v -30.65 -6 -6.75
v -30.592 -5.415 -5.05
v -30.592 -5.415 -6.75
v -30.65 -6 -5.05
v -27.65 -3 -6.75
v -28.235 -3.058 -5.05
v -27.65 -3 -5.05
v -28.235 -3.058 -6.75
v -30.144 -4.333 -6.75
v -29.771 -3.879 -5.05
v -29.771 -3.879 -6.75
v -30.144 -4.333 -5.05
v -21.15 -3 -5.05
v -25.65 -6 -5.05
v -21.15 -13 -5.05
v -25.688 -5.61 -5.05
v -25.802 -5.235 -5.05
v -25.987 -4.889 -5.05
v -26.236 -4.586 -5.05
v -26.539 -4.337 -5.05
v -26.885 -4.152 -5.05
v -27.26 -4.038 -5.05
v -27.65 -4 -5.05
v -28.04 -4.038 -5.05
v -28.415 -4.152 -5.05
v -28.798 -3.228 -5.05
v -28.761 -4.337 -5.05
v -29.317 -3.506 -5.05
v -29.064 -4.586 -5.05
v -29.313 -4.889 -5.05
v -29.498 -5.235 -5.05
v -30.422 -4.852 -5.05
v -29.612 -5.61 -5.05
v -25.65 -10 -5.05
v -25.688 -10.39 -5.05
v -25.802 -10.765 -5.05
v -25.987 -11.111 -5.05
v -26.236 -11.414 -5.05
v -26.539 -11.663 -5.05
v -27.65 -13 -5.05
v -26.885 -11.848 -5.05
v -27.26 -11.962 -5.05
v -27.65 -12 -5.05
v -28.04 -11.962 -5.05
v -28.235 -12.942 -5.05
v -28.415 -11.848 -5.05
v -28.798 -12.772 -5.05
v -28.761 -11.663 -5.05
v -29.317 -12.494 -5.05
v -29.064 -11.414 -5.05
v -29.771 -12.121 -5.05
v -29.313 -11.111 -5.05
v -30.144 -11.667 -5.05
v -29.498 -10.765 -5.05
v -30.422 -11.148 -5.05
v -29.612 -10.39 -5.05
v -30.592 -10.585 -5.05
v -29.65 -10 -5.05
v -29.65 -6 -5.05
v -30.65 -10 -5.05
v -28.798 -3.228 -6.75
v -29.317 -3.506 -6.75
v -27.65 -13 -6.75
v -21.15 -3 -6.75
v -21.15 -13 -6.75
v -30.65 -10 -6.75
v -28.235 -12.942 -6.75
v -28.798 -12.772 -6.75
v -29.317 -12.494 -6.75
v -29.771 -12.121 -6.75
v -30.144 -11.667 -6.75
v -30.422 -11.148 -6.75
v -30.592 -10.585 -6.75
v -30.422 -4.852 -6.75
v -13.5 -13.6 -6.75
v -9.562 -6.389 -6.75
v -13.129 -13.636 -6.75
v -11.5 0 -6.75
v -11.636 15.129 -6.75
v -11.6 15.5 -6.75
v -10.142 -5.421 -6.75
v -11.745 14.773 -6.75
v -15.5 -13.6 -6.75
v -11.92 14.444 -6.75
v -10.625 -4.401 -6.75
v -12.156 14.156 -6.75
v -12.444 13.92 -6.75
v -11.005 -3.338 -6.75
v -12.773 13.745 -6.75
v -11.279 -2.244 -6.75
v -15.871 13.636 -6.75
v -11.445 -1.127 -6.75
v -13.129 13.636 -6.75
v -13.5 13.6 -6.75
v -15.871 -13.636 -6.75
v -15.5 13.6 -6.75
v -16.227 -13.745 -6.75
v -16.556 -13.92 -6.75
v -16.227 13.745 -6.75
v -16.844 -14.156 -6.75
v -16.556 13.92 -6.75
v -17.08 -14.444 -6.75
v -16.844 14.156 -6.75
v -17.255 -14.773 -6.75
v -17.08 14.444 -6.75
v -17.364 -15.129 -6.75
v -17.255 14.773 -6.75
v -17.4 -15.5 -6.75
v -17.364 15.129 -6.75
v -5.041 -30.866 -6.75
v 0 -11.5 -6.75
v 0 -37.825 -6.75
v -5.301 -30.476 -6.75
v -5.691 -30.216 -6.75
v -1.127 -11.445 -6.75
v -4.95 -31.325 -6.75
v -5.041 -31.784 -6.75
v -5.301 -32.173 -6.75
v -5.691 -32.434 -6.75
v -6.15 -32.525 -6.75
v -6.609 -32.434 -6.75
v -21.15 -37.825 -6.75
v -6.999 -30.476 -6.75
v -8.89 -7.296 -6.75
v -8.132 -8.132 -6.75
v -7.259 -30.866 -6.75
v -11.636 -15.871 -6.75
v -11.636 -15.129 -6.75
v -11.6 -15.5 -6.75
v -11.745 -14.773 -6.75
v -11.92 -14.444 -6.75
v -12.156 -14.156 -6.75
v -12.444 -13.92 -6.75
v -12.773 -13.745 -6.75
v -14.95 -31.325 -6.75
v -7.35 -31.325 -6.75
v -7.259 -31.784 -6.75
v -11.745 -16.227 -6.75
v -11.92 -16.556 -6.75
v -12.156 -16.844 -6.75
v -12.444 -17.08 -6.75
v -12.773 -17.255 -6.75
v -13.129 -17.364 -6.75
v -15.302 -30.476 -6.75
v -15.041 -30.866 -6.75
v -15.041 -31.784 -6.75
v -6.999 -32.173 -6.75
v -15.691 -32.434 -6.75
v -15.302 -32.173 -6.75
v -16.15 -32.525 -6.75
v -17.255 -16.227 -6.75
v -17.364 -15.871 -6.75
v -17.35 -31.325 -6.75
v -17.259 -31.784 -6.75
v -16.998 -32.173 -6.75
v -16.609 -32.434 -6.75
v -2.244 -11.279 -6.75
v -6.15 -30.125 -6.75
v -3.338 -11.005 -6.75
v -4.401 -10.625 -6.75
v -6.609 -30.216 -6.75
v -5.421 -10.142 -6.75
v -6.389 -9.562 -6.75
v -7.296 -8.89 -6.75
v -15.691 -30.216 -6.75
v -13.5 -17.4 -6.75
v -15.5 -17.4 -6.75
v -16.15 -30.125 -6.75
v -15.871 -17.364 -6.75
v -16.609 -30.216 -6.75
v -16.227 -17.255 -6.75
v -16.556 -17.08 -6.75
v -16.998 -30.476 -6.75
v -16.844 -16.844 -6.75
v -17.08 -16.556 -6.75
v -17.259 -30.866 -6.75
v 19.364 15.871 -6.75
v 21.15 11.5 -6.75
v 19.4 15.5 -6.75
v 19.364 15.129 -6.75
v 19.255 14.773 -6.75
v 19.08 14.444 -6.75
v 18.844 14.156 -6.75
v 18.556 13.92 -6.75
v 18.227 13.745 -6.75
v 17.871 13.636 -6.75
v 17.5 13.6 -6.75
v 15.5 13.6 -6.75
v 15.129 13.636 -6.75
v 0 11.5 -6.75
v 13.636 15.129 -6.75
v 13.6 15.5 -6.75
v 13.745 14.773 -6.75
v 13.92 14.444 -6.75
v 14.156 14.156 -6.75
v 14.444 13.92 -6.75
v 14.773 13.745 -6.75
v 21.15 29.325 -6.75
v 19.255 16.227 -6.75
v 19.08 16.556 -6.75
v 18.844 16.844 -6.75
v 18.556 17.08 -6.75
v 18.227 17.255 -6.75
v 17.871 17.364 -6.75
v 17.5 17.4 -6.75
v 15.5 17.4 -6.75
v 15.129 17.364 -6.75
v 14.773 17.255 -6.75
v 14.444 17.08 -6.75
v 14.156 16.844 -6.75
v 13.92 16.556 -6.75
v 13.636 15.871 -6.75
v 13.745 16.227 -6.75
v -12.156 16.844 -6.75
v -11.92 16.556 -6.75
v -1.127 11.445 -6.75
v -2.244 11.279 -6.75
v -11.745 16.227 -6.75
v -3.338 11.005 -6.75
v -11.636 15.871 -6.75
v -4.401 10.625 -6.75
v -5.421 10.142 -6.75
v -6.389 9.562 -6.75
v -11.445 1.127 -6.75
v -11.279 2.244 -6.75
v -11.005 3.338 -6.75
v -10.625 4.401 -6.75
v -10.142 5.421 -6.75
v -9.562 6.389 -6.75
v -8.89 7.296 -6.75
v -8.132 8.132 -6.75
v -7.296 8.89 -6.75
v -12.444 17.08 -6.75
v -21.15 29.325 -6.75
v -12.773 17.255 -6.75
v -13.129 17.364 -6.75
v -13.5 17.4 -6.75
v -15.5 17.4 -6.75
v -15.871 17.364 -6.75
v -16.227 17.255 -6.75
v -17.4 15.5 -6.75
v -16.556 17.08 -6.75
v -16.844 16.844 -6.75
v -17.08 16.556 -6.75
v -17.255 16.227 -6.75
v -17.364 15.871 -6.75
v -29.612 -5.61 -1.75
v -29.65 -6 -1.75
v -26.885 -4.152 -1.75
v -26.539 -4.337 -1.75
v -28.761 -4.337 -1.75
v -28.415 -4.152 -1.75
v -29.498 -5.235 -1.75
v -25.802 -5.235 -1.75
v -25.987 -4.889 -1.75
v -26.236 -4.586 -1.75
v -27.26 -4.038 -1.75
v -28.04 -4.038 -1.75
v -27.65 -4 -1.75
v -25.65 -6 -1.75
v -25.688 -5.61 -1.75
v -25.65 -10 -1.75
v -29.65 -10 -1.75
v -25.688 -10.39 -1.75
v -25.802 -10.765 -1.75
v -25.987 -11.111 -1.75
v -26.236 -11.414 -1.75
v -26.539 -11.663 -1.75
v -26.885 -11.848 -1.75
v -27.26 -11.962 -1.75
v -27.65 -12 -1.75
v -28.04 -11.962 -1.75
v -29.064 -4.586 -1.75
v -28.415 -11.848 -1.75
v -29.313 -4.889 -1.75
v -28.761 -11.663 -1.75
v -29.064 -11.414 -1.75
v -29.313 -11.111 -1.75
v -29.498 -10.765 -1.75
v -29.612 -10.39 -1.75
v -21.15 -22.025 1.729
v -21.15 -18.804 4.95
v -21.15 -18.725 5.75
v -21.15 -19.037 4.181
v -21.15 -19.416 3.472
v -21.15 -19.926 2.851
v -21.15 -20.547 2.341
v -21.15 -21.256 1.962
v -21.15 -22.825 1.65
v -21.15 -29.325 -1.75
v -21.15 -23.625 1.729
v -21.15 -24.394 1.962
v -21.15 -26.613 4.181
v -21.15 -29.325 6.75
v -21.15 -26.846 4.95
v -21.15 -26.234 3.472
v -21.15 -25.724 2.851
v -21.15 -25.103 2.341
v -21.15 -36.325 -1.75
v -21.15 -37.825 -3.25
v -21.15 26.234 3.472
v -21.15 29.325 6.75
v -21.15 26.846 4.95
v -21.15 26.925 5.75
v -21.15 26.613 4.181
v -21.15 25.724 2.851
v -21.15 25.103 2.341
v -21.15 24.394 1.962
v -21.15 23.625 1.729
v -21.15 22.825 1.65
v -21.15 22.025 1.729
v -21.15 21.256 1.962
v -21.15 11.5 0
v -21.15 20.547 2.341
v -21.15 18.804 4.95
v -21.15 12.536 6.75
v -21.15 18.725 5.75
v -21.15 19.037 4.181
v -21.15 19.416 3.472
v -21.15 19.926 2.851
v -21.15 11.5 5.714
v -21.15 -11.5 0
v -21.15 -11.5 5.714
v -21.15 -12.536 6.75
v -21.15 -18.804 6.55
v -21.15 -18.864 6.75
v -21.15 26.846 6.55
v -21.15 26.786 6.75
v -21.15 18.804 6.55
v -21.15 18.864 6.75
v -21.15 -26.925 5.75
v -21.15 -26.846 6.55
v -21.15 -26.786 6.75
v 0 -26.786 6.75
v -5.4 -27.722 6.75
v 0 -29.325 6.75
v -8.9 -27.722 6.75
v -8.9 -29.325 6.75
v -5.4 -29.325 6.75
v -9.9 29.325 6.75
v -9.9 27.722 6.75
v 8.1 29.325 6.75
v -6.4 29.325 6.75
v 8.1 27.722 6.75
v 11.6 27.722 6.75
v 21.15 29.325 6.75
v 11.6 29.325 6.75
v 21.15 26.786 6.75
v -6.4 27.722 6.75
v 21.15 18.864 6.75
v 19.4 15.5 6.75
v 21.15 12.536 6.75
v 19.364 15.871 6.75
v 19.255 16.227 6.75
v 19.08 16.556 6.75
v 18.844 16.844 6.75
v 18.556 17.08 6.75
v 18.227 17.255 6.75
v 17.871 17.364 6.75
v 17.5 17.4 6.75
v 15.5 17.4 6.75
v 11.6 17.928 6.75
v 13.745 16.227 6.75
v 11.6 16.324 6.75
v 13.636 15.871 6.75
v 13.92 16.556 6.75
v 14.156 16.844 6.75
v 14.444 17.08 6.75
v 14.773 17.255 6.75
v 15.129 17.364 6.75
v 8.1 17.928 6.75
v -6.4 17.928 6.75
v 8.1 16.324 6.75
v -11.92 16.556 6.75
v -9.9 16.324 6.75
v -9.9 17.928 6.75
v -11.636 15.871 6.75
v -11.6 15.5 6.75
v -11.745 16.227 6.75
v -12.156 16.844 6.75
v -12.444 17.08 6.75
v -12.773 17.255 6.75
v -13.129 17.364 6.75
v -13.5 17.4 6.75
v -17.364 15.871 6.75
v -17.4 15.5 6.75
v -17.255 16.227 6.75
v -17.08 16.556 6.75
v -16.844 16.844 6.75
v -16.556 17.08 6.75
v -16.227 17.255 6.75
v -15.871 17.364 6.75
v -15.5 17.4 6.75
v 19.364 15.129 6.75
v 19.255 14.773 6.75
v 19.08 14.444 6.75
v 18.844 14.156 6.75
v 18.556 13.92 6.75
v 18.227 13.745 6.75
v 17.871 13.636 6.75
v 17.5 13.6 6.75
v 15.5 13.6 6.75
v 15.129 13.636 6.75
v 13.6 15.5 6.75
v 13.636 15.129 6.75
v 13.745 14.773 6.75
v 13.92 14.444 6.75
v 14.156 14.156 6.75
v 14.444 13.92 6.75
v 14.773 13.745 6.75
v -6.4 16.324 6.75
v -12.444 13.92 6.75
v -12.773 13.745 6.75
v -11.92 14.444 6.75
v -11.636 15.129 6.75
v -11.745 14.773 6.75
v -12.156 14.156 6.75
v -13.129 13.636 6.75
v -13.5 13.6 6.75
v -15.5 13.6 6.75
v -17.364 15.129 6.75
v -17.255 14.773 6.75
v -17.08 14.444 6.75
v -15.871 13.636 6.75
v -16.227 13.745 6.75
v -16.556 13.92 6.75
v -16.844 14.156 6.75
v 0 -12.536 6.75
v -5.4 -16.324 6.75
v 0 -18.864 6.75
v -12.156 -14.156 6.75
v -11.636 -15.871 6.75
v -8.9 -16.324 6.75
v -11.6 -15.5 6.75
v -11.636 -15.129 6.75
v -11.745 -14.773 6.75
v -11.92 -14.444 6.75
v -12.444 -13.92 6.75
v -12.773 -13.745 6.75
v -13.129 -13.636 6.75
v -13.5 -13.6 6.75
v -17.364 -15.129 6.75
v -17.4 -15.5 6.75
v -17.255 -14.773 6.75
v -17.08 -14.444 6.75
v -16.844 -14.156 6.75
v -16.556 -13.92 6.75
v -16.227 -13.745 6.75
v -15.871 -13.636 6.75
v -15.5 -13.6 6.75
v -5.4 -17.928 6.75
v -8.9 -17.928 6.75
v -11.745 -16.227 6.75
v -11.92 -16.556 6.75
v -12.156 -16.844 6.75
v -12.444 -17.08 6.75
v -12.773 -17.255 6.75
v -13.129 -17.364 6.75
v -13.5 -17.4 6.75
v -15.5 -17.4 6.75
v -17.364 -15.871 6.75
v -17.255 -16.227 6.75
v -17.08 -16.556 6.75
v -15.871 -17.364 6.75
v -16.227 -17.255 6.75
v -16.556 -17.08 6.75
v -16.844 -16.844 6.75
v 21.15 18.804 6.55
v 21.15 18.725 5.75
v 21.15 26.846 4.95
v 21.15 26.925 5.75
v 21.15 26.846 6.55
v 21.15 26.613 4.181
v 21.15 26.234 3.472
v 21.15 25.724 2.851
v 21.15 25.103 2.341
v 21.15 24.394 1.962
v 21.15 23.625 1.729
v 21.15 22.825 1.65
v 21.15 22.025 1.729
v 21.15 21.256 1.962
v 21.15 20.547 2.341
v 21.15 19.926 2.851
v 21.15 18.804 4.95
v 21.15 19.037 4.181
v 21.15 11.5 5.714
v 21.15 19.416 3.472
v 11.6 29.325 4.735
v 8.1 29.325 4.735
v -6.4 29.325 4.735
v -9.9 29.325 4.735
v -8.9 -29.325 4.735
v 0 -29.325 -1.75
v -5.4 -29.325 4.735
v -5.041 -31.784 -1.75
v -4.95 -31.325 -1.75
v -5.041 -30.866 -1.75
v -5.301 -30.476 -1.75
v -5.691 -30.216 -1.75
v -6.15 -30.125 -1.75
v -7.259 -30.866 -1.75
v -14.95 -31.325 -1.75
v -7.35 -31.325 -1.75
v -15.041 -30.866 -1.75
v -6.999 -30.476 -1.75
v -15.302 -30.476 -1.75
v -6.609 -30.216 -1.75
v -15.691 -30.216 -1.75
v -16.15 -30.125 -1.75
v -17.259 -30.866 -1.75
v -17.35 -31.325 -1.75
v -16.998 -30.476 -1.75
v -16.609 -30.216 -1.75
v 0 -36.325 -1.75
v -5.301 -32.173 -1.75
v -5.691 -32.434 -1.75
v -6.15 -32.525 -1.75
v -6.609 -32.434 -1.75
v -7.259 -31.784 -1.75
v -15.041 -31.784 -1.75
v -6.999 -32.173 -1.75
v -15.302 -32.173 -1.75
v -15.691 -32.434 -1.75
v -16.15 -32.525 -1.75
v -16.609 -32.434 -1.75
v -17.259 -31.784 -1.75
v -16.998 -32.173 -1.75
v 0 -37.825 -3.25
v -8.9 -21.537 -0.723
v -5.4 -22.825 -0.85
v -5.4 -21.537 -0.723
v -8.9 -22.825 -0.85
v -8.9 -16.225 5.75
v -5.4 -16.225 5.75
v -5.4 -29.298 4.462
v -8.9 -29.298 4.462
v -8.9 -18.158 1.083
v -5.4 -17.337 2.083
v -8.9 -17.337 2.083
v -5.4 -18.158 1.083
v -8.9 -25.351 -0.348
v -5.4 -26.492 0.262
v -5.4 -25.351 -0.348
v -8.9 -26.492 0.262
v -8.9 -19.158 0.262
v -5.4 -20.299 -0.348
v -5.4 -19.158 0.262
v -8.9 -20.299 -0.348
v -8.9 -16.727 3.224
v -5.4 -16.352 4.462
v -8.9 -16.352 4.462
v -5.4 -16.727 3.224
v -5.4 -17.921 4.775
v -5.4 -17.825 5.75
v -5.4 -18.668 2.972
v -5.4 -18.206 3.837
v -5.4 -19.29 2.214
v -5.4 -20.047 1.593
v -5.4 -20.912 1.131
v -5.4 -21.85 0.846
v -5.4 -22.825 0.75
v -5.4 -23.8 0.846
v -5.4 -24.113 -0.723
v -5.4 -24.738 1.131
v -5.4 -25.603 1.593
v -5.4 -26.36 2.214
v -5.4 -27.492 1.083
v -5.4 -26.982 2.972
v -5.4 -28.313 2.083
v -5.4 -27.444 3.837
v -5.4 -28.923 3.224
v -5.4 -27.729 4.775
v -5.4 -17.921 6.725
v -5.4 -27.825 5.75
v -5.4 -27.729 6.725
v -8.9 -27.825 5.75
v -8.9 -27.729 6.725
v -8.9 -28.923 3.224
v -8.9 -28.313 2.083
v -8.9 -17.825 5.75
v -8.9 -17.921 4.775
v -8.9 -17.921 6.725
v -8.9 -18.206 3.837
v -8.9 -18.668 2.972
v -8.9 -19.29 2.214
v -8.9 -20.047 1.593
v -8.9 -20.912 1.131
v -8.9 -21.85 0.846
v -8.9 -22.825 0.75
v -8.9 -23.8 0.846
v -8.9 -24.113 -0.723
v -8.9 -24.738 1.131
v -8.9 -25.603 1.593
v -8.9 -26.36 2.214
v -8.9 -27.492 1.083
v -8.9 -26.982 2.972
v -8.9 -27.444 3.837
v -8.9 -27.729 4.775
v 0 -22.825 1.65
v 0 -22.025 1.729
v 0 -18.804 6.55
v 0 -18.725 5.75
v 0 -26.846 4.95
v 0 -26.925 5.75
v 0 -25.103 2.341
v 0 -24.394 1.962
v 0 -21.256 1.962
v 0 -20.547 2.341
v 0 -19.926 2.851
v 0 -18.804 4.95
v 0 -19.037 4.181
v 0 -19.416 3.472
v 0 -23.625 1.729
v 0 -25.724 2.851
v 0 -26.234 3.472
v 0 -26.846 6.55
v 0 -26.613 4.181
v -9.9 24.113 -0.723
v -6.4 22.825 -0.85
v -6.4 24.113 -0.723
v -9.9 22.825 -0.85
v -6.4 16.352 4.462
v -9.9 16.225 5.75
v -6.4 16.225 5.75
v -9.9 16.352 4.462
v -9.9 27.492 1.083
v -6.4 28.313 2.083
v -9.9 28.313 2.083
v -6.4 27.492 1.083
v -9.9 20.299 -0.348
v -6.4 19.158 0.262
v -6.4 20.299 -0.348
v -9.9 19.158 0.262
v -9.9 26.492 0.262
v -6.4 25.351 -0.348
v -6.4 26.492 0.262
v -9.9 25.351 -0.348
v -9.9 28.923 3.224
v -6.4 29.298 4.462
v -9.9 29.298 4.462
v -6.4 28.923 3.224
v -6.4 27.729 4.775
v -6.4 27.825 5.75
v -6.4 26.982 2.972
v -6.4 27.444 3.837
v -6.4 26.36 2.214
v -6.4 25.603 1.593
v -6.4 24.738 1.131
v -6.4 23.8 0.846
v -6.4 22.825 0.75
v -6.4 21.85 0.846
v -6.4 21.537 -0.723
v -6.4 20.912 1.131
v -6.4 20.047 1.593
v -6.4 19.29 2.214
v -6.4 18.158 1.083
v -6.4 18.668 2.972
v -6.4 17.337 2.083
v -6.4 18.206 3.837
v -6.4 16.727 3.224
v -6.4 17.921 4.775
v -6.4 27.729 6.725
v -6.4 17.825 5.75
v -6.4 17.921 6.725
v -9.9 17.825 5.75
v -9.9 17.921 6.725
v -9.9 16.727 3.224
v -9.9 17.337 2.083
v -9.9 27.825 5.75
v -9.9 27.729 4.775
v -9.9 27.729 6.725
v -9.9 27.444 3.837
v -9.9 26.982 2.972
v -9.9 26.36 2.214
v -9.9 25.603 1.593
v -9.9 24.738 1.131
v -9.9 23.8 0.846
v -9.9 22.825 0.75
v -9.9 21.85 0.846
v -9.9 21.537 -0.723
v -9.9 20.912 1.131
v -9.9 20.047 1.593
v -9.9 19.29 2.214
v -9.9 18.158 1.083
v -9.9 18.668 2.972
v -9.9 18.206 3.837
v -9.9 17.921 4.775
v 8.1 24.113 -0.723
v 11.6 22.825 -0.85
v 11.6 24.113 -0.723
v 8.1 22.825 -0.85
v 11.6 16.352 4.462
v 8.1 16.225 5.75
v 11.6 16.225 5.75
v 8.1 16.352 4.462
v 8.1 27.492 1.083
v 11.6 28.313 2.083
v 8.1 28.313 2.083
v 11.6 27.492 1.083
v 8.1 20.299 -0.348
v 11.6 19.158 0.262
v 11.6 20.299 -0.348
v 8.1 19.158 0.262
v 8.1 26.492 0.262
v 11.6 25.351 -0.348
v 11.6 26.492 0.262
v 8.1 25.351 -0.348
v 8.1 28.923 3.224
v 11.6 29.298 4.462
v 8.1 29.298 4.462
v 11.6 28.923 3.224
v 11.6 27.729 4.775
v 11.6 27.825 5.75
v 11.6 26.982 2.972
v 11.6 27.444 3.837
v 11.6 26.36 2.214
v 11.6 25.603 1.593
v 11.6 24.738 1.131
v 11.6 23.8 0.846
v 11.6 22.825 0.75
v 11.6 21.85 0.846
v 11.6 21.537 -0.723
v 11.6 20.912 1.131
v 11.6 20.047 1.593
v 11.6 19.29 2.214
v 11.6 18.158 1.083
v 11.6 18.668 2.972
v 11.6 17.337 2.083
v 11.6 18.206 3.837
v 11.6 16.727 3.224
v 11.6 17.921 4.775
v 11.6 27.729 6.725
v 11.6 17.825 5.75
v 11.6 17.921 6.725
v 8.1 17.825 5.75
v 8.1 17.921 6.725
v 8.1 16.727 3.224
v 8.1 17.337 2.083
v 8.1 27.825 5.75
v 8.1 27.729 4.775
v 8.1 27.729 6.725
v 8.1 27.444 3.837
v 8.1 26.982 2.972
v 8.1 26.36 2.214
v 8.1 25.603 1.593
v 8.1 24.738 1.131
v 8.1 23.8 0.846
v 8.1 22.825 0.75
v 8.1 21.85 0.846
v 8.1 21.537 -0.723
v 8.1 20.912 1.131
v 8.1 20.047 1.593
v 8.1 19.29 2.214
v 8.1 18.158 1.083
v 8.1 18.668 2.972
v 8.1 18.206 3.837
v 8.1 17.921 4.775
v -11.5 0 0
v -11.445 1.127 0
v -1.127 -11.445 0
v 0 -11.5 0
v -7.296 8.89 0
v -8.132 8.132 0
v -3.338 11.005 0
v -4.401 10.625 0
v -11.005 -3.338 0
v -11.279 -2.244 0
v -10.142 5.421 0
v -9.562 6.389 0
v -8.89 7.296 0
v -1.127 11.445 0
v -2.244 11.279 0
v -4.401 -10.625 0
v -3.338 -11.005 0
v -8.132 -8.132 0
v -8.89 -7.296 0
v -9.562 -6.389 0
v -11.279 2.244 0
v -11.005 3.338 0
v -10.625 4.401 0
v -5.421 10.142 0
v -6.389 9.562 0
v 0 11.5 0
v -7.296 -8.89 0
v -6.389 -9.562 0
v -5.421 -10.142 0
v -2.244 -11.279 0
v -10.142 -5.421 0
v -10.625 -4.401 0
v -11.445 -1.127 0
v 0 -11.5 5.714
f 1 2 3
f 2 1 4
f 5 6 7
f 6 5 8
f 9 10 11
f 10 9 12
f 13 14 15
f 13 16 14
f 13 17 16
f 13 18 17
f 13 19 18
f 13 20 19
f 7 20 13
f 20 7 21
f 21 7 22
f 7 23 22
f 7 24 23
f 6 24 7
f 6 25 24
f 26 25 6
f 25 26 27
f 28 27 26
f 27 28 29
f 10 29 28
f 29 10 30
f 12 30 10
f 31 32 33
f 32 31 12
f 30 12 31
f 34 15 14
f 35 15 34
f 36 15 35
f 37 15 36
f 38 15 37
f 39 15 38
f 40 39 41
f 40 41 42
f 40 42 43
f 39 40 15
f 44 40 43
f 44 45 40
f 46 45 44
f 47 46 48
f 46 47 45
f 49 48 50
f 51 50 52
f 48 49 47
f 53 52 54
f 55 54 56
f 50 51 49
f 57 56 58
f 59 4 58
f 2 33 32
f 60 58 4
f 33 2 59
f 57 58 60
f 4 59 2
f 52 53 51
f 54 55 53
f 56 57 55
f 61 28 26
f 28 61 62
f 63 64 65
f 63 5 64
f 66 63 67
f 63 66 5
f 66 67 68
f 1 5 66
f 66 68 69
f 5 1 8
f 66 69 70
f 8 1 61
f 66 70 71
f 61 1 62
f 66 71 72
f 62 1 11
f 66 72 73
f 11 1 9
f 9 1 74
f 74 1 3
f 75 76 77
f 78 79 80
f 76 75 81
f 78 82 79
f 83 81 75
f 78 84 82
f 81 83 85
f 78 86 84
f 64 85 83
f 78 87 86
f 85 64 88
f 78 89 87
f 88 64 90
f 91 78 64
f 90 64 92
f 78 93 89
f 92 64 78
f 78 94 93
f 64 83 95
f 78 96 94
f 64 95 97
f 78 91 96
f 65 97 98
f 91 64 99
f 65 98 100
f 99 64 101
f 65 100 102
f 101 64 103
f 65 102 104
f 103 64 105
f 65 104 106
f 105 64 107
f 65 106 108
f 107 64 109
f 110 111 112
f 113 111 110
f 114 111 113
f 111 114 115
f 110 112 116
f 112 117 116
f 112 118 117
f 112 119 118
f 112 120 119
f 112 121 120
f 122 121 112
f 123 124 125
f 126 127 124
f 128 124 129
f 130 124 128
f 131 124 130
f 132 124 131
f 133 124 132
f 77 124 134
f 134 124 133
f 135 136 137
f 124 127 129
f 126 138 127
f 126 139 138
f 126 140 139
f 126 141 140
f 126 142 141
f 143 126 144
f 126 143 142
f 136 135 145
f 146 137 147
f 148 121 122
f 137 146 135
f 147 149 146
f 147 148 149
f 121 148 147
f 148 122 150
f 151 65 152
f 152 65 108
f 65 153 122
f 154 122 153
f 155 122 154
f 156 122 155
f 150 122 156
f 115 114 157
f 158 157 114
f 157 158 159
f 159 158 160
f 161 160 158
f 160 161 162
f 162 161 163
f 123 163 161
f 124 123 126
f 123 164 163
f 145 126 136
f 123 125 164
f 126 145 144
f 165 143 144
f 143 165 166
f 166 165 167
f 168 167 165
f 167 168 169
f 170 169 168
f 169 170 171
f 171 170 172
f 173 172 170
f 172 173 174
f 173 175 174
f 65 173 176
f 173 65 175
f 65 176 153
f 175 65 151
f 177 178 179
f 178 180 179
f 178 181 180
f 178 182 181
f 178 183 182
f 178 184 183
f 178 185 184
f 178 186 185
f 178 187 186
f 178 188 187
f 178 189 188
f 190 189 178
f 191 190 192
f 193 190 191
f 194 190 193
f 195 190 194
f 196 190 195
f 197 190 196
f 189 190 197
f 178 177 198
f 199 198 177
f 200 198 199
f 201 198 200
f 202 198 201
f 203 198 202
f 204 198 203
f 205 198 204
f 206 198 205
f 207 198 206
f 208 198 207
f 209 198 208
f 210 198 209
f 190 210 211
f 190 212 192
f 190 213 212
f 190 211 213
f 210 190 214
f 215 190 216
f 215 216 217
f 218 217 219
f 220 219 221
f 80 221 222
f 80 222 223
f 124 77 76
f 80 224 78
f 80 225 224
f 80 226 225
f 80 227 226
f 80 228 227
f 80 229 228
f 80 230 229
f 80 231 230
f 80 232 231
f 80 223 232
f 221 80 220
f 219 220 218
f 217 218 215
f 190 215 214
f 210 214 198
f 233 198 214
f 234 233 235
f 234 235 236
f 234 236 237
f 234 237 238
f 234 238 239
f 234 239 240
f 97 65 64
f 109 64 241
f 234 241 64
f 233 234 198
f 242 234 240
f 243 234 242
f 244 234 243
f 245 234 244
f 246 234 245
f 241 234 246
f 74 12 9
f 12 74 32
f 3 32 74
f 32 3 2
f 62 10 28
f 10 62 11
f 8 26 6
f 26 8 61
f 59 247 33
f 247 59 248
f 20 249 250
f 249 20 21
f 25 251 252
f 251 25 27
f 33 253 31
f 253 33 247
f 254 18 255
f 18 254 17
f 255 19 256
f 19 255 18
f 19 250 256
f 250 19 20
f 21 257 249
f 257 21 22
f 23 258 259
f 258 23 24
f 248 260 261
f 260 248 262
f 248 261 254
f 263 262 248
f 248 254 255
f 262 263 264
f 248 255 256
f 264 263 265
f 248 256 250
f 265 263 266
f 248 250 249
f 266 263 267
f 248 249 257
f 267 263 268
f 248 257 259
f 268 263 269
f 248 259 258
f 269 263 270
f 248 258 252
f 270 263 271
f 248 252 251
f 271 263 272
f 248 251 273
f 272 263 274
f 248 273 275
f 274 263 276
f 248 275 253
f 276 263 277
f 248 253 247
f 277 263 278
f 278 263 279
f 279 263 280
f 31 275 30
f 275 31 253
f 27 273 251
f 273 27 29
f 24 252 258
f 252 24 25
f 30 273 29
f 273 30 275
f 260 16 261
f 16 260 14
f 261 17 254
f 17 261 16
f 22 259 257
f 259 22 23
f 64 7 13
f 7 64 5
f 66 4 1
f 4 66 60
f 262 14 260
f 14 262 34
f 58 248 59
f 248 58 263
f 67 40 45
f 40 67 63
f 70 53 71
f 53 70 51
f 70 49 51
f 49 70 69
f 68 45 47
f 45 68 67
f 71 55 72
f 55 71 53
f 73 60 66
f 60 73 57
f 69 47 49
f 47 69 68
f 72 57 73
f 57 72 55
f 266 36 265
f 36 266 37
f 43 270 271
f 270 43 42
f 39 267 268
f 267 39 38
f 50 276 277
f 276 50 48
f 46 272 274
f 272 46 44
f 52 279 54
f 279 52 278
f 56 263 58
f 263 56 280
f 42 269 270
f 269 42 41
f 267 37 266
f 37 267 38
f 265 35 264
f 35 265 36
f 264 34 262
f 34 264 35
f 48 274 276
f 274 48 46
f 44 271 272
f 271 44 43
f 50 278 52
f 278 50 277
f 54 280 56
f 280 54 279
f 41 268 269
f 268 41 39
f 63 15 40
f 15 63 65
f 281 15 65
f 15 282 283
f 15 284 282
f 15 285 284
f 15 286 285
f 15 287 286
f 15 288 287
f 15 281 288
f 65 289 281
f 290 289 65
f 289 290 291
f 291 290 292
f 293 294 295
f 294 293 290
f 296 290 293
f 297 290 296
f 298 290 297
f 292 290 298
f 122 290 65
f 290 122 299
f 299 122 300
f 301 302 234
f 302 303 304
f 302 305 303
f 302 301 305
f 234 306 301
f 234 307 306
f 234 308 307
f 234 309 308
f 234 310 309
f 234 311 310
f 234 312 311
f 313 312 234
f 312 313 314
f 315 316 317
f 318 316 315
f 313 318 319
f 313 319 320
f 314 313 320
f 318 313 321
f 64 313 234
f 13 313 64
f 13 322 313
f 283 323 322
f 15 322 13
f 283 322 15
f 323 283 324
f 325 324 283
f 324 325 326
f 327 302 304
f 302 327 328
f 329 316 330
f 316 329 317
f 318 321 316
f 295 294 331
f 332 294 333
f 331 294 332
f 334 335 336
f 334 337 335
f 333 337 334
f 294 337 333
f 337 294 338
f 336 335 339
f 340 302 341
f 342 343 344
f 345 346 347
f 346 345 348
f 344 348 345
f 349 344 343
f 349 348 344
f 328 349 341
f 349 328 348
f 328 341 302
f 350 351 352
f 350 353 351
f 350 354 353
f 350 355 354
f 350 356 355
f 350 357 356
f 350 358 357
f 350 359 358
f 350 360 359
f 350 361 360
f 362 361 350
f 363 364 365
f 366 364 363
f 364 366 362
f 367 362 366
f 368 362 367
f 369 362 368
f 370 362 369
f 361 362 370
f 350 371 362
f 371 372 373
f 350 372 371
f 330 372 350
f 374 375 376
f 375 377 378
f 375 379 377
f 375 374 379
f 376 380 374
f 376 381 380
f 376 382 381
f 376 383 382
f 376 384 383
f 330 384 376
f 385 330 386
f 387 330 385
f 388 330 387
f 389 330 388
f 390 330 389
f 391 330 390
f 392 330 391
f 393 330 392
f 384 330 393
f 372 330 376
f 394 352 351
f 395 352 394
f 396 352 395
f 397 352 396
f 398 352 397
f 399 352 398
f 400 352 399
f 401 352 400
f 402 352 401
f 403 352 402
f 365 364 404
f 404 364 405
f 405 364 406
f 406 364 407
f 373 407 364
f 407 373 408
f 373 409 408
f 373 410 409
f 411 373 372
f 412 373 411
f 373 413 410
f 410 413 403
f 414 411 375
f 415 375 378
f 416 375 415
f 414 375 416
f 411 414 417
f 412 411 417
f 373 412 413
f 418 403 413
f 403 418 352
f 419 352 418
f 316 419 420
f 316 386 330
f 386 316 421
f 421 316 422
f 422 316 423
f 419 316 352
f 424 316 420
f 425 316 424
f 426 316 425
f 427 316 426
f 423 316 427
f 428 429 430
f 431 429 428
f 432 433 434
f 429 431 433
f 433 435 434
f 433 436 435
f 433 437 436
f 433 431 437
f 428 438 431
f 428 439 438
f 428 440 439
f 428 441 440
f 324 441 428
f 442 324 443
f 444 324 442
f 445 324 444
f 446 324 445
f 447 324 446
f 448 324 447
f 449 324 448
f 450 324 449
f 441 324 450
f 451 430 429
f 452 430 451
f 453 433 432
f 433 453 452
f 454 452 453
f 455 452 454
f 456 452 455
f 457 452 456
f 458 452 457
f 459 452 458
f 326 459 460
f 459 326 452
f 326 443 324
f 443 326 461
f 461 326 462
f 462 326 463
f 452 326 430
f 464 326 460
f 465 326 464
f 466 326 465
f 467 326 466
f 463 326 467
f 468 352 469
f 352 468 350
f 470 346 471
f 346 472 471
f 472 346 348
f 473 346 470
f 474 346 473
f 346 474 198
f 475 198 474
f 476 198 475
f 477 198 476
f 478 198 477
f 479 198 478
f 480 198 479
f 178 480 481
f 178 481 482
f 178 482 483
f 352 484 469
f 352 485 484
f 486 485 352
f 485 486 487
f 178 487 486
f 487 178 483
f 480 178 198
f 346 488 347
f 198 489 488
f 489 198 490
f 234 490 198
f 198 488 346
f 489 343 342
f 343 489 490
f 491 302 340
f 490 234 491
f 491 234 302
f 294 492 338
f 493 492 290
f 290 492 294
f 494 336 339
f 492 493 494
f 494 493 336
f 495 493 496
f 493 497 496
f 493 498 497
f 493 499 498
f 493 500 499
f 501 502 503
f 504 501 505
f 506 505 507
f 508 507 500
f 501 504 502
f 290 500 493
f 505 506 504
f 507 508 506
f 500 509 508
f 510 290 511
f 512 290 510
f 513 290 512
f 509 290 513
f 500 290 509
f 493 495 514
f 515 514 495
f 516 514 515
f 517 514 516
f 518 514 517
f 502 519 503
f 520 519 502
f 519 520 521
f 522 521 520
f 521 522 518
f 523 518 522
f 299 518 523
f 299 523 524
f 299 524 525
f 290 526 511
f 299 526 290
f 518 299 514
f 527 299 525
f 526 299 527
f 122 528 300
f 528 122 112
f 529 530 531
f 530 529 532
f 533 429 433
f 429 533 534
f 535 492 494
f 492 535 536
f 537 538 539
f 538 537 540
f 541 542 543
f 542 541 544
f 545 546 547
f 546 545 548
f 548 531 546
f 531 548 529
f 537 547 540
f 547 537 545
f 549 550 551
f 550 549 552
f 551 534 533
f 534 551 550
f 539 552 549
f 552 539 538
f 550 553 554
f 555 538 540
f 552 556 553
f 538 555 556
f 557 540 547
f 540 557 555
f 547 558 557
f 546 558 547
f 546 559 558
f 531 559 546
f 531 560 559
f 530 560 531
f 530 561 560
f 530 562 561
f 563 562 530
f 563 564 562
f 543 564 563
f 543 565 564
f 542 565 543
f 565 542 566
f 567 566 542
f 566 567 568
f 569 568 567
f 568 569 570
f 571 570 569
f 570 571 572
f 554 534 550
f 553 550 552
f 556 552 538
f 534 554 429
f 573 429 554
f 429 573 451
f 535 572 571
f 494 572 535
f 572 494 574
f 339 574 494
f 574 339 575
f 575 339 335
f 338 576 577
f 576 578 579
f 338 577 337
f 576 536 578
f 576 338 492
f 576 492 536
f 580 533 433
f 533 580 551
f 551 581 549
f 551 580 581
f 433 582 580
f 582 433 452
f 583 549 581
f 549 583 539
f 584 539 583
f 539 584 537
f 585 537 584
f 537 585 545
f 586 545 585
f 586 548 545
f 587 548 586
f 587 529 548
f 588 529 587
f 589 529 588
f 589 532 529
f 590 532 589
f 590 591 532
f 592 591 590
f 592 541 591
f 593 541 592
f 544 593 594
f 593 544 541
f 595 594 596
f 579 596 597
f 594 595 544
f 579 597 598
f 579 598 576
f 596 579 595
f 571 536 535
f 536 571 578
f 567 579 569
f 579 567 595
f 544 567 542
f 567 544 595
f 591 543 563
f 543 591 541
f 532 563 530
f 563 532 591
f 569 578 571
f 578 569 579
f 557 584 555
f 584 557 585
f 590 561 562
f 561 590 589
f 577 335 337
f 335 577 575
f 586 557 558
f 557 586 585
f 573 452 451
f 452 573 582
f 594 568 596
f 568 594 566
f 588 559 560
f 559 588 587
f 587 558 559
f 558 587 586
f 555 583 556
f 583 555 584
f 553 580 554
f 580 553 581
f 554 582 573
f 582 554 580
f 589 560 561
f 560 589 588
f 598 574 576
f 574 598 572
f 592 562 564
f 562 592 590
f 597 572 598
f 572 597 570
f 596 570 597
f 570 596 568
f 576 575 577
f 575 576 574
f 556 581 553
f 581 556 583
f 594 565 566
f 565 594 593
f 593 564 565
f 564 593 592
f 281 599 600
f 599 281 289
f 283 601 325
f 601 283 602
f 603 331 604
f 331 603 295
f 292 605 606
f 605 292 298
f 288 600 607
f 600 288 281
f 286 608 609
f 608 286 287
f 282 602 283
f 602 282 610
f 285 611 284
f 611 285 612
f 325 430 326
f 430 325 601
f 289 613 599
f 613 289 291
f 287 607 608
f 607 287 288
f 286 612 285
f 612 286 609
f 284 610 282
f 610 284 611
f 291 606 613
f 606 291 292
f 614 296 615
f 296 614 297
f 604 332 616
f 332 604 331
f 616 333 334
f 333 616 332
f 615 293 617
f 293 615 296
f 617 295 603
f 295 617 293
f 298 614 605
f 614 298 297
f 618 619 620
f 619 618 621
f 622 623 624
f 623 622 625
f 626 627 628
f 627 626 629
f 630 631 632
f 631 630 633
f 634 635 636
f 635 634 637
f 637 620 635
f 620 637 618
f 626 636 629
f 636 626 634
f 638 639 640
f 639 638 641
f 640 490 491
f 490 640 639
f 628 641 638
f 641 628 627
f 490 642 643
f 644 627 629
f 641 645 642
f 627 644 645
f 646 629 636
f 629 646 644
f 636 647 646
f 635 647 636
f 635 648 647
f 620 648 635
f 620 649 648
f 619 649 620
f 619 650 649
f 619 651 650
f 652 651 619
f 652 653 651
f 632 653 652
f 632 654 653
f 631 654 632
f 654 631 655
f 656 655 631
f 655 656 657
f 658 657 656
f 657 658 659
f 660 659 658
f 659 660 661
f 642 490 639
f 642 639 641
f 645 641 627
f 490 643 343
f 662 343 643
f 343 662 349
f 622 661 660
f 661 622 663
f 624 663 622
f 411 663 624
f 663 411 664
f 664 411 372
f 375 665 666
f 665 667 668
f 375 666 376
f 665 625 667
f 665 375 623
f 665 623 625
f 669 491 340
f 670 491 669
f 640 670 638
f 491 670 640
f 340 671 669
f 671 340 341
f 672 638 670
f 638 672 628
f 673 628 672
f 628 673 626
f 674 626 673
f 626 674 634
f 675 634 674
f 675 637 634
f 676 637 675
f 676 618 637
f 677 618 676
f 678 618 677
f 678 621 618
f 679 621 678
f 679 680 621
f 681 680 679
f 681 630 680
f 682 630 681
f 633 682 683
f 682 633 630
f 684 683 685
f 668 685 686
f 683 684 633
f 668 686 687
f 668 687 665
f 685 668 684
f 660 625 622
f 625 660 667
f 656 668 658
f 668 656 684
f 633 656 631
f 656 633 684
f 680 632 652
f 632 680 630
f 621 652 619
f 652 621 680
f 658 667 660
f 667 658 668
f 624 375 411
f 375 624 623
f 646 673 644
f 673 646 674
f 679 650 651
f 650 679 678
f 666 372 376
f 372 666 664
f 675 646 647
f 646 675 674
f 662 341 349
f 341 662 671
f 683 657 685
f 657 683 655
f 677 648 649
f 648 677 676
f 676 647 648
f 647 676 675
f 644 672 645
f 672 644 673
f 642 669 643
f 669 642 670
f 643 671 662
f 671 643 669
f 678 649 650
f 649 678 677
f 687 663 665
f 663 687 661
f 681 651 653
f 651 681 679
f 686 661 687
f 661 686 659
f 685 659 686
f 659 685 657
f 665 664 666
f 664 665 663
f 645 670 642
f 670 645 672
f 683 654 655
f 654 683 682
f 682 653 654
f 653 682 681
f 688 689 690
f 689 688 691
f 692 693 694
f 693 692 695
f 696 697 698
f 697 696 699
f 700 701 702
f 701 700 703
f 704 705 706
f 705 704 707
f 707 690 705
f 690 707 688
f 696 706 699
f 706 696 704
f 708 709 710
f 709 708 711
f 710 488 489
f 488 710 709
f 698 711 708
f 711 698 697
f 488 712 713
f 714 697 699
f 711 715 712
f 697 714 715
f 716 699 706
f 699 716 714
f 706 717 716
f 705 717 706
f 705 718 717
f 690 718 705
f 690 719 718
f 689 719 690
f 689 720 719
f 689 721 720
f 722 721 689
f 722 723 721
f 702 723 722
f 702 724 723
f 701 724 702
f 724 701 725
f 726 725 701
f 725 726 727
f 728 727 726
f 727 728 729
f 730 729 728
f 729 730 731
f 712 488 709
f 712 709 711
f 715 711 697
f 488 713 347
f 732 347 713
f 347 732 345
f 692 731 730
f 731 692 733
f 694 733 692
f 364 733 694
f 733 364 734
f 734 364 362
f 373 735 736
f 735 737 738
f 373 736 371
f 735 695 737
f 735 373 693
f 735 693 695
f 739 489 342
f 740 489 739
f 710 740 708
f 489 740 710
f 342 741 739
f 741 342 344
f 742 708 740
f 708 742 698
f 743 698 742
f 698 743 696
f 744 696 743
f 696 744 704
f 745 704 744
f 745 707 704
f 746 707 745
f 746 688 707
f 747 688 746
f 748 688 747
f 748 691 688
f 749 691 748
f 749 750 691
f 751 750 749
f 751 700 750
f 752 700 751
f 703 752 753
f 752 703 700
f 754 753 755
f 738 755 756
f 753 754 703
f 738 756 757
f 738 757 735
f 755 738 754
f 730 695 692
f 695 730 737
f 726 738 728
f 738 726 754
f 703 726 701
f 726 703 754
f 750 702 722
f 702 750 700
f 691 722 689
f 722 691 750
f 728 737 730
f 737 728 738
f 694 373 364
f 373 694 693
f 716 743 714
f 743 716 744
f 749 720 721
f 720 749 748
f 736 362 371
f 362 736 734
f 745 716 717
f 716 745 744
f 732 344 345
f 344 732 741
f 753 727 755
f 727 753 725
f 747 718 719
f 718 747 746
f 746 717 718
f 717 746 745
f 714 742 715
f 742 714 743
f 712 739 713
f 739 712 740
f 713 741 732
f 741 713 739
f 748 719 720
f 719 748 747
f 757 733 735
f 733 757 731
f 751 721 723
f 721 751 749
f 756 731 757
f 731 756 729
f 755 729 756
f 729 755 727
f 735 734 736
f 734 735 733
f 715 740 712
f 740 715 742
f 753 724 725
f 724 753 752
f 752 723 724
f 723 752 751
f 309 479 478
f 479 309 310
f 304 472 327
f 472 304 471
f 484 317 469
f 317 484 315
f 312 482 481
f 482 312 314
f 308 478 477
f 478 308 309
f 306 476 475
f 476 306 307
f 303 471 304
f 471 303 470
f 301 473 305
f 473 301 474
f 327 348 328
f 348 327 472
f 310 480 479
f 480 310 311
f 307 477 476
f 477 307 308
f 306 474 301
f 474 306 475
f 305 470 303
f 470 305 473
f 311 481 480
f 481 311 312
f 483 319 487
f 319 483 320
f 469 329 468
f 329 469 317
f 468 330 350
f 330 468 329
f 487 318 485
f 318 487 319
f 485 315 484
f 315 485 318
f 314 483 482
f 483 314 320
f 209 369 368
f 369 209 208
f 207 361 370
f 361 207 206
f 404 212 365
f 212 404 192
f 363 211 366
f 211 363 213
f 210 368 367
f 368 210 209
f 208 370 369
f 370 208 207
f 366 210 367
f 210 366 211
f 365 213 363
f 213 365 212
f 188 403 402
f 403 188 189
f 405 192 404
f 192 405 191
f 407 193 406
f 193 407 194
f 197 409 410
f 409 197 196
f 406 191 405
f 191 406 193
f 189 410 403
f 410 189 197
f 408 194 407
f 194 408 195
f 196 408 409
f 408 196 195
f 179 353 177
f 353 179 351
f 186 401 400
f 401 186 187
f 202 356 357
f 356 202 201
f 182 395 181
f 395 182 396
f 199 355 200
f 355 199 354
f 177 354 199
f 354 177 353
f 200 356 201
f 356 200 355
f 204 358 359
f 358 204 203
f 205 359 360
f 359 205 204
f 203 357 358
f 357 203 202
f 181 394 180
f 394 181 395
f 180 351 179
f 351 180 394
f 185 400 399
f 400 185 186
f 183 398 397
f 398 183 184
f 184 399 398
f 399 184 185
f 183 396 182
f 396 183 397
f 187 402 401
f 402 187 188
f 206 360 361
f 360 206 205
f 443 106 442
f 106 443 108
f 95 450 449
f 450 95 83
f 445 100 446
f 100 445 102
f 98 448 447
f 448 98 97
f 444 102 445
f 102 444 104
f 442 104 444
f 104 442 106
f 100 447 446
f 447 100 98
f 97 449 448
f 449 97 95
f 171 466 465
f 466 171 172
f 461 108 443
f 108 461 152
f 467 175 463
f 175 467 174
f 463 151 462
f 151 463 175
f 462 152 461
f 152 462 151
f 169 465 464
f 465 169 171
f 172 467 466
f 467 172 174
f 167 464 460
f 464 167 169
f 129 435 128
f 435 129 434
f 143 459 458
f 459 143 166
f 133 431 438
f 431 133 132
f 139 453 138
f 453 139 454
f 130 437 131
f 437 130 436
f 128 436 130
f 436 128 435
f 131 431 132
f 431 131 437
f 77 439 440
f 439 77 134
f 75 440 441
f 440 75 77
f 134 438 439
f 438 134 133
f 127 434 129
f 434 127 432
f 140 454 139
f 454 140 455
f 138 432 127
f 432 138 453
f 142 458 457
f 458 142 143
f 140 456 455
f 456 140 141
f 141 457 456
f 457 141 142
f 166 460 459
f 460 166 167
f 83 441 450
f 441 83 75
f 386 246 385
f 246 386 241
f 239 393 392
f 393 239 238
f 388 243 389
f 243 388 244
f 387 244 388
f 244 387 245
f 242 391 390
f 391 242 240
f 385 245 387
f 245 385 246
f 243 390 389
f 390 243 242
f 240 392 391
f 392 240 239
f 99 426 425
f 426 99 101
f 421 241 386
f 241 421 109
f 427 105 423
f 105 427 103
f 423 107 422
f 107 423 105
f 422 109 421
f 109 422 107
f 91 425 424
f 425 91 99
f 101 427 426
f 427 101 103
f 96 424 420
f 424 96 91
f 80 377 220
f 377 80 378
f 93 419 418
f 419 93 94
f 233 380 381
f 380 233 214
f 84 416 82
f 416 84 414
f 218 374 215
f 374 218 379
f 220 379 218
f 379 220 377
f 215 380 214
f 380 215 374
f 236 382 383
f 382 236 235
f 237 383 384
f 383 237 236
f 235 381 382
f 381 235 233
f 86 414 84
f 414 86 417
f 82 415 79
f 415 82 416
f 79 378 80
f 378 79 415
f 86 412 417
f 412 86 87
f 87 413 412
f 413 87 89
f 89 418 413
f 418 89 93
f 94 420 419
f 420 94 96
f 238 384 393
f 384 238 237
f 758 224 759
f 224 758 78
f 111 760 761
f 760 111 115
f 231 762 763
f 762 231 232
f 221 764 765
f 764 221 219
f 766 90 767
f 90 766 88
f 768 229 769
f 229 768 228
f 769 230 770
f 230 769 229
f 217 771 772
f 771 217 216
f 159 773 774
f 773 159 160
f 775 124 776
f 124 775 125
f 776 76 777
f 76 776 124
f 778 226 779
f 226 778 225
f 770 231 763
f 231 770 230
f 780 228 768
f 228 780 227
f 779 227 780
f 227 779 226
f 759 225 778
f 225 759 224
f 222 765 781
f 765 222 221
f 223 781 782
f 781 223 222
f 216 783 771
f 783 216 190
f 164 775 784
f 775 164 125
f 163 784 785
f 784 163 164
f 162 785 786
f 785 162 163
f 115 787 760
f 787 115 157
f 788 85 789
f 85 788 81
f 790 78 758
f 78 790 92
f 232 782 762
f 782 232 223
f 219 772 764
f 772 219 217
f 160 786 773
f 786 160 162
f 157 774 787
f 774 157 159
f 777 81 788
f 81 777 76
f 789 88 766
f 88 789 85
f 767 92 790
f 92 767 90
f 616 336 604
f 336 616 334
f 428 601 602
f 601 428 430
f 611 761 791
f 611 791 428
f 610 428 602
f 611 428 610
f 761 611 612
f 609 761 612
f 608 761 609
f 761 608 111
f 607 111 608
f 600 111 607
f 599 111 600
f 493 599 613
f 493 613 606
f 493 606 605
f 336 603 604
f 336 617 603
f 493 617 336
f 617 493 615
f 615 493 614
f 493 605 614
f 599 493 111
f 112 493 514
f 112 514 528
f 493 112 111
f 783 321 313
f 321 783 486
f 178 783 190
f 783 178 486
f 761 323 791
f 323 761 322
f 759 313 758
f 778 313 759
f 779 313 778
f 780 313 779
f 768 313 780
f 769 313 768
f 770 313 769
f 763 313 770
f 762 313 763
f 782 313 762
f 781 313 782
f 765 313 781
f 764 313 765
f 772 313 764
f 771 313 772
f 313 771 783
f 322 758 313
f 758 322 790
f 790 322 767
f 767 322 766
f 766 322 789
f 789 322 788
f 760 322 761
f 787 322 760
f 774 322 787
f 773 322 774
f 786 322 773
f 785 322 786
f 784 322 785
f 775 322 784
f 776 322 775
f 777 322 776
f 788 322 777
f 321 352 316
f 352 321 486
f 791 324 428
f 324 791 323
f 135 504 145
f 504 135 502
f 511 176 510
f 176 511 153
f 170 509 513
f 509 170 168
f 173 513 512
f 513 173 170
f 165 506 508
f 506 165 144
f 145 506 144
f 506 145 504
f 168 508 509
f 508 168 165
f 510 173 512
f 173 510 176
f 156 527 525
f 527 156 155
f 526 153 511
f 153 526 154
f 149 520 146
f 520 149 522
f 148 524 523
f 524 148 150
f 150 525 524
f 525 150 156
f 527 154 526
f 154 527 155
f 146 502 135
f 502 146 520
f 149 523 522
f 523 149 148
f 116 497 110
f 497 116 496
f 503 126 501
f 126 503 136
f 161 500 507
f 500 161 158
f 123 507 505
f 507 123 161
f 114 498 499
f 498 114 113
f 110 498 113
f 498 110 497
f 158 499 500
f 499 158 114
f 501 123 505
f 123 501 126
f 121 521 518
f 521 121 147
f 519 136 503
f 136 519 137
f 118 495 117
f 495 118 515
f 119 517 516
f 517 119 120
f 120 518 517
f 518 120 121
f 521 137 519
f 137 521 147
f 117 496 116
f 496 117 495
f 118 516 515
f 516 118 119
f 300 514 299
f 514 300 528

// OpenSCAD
// file: ../configuration.scad
/*
	Konfiguracni soubor 3D tiskarny RebeliX X2
	
	Sledujte nas na:		  
			www.RepRap4U.cz
			www.facebook.com/RebeliX.cz
			https://twitter.com/reprap4u
			https://plus.google.com/+Reprap4uCz-3Dtiskarna-RebeliX
*/

/*================ Slic3r nastaveni ==========================*/

// Vyska vrstvy pro tisknuti dilu [mm]
layer_height = 0.3;

// Sirka vytlacovaneho materialu [mm]
extrusion_width = 0.66; //Slic3r->Print Settings->Advanced->Default extrusion width

/*==================== M6 sroub ==============================*/

// Rezerva prumeru hlavy sroubu [mm]
space = 1;

// Prumer hlavy M6 sroubu (pricte se rezerva) [mm]
M6_head_diameter = 10.6+space;
//M6_head_diameter = 12+space;

// Vyska hlavy M6 sroubu (dulezite pro zapusteni hlavy sroubu do plastu) [mm]
M6_head_height = 3.6;
//M6_head_height = 4.5;

// Delka sroubu M6 [mm]
// M6x12
M6_lenght = 12;

/*=================== Nastaveni dilu =========================*/

// Posun Z zakladny
z_base_offset = 11;

// Tloustka rohovych spojek
// 5 mm => sroub M6x14 s podlozkou
// 3 mm => sroub M6x12 s podlozkou
coupler_thickness = 5;

// Prumer 8mm tyce
rod_8mm_d = 8.2;

// Posun drzacku mezi x-motor a x-end
x_holder_position = 6.5;

/*======================== Motory ============================*/

// Delka motoru (ovlivni dily a delky tyci pro osy Z a Y)
//SX17-1003LQFE (doporuceno hlavne na osu Z)
motor_length = 29.5;
//SX17-1003 (doporuceno hlavne na osu Z), SX17-0503LQEF
//motor_length = 34;
//SX17-1005
//motor_length = 40;
//SX17-0905 - zde je jiz problem s velkou vyskou motoru na ose Z - musi se upravit endstop-holder
//motor_length = 48;

/*================ Remeny a remenicky ========================*/

// GT2 
belt_tooth_distance = 2;
belt_tooth_ratio = 0.5;

// T2.5
//belt_tooth_distance = 2.5;
//belt_tooth_ratio = 0.68;
// main file
// RebeliX
//
// x-motor
// GNU GPL v3
// Martin Neruda <neruda@reprap4u.cz>
// http://www.reprap4u.cz

include <../configuration.scad>

// Vertikalni korekce
v_corr = 0.65;

x_rod_distance = 45 + v_corr;
motor_width = 42.3;
height = 13.5;
length = x_rod_distance+12;
pulley_diameter = 16;
// Tloustka endstopu (pro umisteni k motoru)
endstop_width = 6.5;

module x_motor_base(){
  cube([motor_width,length + 1,height],center=true);
  // Drzak Z endstopu
  translate([-motor_width/2,-length/2 -9,-height/2]) cube([25,10,5]);
  // Poutko na nacvaknuti k x-end  
  for(i = [4 : 4 : 8]){
	translate([-motor_width/2 - x_holder_position,-2,-height/2]){
		translate([0,-i,0]) cylinder(r=3,h=2-layer_height,$fn=32);
		translate([0,-i,0]) cylinder(r=2,h=5,$fn=32);
		translate([0,-3-i,0]) cube([5+x_holder_position,2*3,2-layer_height]);
		
		translate([-3,-8,0]) cube([5,2*2,2-layer_height]);
		translate([-2,-8,0]) cube([2*2,4,5]);
	}
  }
}

module x_motor_cuts(){
  translate([-motor_width/2+2,-length/2 + 6,height/2 - 1]) rod_cuts();
  translate([-motor_width/2+1,length/2 - 6,height/2 - 1]) rod_cuts();
  // Prisroubovani motoru
  translate([15.5,15.5,0])
  {
    translate([0,0,0]) cylinder(r=1.9,h=30,$fn=32,center=true);
	translate([2,0,0]) cylinder(r=1.9,h=30,$fn=32,center=true);
	translate([1,0,0]) cube([2,2*1.9,30],center=true);
	
	translate([-31,-31,0]) cylinder(r=1.9,h=30,$fn=32,center=true);
	translate([-29,-31,0]) cylinder(r=1.9,h=30,$fn=32,center=true);
	translate([-30,-31,0]) cube([2,2*1.9,30],center=true);
	
	translate([-31,0,0]) cylinder(r=1.9,h=30,$fn=32,center=true);
	translate([-29,0,0]) cylinder(r=1.9,h=30,$fn=32,center=true);
	translate([-30,0,0]) cube([2,2*1.9,30],center=true);
  }
  // Vyrez pro motor
  cylinder(r=11.5,h=30,$fn=64,center=true);
  // Vyrez pro remen
  translate([0,-11.5,-height/2 - 0.1]) cube([30,2*11.5,30]);
  
  // Vyrez pro endstop
  translate([0,-length/2 - 10,-height/2 - 1]) cube([30,30,20]);
  
  // Setreni plastem
  translate([-motor_width/2 - 0.1,-11.5,0]) cube([30,2*11.5,30]);
  // Serizle hrany
  translate([0,11.5,height/2+2.5]) rotate([45,0,0]) cube([motor_width + 1,5,5],center=true);
  translate([0,-11.5,height/2 + 2.5]) rotate([45,0,0]) cube([motor_width + 1,5,5],center=true);

  // Otvory pro pridelani ZIP pasky sroubky
  translate([-motor_width/2 + 5,-length/2 -2.5,0])
  cylinder(r=1.2,h=30,$fn=16,center=true);
  translate([-motor_width/2 + 15,-length/2 -2.5,0])
  cylinder(r=1.2,h=30,$fn=16,center=true);
  
  // Seriznuti drzaku na Z-endstop
  translate([-motor_width/2 -0.1,-length/2-9,-height/2 + 3.5]) rotate([45,0,0]) cube([25,10,5]); 
}

module rod_cuts(){
  // 8mm tyc
  translate([0,0,0]) rotate([0,90,0]) cylinder(r=4.1, h=100, $fn=32,center=true);
  // Vyrez pro ZIP pasky
  for( i = [12 : 18 : 36])
  {
    translate([i,0,0]) rotate([0,90,0]) difference()
	{
       cylinder(r=6.6, h=3.5, $fn=32, center=true);
	   cylinder(r=5, h=4, $fn=32, center=true);
    }
  }	
}

module endstop() {
  difference(){
    union(){
      // Telo endstopu
      translate([0,0,0]) color("blue") cube([10,20,endstop_width], center=true);
      // Vyvody
	  translate([-9,7,0]) cube([8,3,4],center=true);
      translate([-9,-7,0]) cube([8,3,4],center=true);
      // Spinac
      translate([5,7,0]) cube([3,3,4],center=true);
    }
  // Otvory pro zip pasku
  translate([-2,5,0]) cylinder(r=1.5,h=10,$fn=16,center=true);
  translate([-2,-5,0]) cylinder(r=1.5,h=10,$fn=16,center=true);
  }
  
}

module x_motor(){
  difference() {
    x_motor_base();
    x_motor_cuts();
  }
}  

x_motor();

// X-endstop
%translate([15,-length/2 + 6,height/2 - 2*4.1]) endstop();
// Z-endstop
%translate([-(motor_width - 2)/2 + 9,-length/2 -4.5,-height/2 -endstop_width/2]) mirror([1,0,0]) rotate([0,0,-90]) endstop();
